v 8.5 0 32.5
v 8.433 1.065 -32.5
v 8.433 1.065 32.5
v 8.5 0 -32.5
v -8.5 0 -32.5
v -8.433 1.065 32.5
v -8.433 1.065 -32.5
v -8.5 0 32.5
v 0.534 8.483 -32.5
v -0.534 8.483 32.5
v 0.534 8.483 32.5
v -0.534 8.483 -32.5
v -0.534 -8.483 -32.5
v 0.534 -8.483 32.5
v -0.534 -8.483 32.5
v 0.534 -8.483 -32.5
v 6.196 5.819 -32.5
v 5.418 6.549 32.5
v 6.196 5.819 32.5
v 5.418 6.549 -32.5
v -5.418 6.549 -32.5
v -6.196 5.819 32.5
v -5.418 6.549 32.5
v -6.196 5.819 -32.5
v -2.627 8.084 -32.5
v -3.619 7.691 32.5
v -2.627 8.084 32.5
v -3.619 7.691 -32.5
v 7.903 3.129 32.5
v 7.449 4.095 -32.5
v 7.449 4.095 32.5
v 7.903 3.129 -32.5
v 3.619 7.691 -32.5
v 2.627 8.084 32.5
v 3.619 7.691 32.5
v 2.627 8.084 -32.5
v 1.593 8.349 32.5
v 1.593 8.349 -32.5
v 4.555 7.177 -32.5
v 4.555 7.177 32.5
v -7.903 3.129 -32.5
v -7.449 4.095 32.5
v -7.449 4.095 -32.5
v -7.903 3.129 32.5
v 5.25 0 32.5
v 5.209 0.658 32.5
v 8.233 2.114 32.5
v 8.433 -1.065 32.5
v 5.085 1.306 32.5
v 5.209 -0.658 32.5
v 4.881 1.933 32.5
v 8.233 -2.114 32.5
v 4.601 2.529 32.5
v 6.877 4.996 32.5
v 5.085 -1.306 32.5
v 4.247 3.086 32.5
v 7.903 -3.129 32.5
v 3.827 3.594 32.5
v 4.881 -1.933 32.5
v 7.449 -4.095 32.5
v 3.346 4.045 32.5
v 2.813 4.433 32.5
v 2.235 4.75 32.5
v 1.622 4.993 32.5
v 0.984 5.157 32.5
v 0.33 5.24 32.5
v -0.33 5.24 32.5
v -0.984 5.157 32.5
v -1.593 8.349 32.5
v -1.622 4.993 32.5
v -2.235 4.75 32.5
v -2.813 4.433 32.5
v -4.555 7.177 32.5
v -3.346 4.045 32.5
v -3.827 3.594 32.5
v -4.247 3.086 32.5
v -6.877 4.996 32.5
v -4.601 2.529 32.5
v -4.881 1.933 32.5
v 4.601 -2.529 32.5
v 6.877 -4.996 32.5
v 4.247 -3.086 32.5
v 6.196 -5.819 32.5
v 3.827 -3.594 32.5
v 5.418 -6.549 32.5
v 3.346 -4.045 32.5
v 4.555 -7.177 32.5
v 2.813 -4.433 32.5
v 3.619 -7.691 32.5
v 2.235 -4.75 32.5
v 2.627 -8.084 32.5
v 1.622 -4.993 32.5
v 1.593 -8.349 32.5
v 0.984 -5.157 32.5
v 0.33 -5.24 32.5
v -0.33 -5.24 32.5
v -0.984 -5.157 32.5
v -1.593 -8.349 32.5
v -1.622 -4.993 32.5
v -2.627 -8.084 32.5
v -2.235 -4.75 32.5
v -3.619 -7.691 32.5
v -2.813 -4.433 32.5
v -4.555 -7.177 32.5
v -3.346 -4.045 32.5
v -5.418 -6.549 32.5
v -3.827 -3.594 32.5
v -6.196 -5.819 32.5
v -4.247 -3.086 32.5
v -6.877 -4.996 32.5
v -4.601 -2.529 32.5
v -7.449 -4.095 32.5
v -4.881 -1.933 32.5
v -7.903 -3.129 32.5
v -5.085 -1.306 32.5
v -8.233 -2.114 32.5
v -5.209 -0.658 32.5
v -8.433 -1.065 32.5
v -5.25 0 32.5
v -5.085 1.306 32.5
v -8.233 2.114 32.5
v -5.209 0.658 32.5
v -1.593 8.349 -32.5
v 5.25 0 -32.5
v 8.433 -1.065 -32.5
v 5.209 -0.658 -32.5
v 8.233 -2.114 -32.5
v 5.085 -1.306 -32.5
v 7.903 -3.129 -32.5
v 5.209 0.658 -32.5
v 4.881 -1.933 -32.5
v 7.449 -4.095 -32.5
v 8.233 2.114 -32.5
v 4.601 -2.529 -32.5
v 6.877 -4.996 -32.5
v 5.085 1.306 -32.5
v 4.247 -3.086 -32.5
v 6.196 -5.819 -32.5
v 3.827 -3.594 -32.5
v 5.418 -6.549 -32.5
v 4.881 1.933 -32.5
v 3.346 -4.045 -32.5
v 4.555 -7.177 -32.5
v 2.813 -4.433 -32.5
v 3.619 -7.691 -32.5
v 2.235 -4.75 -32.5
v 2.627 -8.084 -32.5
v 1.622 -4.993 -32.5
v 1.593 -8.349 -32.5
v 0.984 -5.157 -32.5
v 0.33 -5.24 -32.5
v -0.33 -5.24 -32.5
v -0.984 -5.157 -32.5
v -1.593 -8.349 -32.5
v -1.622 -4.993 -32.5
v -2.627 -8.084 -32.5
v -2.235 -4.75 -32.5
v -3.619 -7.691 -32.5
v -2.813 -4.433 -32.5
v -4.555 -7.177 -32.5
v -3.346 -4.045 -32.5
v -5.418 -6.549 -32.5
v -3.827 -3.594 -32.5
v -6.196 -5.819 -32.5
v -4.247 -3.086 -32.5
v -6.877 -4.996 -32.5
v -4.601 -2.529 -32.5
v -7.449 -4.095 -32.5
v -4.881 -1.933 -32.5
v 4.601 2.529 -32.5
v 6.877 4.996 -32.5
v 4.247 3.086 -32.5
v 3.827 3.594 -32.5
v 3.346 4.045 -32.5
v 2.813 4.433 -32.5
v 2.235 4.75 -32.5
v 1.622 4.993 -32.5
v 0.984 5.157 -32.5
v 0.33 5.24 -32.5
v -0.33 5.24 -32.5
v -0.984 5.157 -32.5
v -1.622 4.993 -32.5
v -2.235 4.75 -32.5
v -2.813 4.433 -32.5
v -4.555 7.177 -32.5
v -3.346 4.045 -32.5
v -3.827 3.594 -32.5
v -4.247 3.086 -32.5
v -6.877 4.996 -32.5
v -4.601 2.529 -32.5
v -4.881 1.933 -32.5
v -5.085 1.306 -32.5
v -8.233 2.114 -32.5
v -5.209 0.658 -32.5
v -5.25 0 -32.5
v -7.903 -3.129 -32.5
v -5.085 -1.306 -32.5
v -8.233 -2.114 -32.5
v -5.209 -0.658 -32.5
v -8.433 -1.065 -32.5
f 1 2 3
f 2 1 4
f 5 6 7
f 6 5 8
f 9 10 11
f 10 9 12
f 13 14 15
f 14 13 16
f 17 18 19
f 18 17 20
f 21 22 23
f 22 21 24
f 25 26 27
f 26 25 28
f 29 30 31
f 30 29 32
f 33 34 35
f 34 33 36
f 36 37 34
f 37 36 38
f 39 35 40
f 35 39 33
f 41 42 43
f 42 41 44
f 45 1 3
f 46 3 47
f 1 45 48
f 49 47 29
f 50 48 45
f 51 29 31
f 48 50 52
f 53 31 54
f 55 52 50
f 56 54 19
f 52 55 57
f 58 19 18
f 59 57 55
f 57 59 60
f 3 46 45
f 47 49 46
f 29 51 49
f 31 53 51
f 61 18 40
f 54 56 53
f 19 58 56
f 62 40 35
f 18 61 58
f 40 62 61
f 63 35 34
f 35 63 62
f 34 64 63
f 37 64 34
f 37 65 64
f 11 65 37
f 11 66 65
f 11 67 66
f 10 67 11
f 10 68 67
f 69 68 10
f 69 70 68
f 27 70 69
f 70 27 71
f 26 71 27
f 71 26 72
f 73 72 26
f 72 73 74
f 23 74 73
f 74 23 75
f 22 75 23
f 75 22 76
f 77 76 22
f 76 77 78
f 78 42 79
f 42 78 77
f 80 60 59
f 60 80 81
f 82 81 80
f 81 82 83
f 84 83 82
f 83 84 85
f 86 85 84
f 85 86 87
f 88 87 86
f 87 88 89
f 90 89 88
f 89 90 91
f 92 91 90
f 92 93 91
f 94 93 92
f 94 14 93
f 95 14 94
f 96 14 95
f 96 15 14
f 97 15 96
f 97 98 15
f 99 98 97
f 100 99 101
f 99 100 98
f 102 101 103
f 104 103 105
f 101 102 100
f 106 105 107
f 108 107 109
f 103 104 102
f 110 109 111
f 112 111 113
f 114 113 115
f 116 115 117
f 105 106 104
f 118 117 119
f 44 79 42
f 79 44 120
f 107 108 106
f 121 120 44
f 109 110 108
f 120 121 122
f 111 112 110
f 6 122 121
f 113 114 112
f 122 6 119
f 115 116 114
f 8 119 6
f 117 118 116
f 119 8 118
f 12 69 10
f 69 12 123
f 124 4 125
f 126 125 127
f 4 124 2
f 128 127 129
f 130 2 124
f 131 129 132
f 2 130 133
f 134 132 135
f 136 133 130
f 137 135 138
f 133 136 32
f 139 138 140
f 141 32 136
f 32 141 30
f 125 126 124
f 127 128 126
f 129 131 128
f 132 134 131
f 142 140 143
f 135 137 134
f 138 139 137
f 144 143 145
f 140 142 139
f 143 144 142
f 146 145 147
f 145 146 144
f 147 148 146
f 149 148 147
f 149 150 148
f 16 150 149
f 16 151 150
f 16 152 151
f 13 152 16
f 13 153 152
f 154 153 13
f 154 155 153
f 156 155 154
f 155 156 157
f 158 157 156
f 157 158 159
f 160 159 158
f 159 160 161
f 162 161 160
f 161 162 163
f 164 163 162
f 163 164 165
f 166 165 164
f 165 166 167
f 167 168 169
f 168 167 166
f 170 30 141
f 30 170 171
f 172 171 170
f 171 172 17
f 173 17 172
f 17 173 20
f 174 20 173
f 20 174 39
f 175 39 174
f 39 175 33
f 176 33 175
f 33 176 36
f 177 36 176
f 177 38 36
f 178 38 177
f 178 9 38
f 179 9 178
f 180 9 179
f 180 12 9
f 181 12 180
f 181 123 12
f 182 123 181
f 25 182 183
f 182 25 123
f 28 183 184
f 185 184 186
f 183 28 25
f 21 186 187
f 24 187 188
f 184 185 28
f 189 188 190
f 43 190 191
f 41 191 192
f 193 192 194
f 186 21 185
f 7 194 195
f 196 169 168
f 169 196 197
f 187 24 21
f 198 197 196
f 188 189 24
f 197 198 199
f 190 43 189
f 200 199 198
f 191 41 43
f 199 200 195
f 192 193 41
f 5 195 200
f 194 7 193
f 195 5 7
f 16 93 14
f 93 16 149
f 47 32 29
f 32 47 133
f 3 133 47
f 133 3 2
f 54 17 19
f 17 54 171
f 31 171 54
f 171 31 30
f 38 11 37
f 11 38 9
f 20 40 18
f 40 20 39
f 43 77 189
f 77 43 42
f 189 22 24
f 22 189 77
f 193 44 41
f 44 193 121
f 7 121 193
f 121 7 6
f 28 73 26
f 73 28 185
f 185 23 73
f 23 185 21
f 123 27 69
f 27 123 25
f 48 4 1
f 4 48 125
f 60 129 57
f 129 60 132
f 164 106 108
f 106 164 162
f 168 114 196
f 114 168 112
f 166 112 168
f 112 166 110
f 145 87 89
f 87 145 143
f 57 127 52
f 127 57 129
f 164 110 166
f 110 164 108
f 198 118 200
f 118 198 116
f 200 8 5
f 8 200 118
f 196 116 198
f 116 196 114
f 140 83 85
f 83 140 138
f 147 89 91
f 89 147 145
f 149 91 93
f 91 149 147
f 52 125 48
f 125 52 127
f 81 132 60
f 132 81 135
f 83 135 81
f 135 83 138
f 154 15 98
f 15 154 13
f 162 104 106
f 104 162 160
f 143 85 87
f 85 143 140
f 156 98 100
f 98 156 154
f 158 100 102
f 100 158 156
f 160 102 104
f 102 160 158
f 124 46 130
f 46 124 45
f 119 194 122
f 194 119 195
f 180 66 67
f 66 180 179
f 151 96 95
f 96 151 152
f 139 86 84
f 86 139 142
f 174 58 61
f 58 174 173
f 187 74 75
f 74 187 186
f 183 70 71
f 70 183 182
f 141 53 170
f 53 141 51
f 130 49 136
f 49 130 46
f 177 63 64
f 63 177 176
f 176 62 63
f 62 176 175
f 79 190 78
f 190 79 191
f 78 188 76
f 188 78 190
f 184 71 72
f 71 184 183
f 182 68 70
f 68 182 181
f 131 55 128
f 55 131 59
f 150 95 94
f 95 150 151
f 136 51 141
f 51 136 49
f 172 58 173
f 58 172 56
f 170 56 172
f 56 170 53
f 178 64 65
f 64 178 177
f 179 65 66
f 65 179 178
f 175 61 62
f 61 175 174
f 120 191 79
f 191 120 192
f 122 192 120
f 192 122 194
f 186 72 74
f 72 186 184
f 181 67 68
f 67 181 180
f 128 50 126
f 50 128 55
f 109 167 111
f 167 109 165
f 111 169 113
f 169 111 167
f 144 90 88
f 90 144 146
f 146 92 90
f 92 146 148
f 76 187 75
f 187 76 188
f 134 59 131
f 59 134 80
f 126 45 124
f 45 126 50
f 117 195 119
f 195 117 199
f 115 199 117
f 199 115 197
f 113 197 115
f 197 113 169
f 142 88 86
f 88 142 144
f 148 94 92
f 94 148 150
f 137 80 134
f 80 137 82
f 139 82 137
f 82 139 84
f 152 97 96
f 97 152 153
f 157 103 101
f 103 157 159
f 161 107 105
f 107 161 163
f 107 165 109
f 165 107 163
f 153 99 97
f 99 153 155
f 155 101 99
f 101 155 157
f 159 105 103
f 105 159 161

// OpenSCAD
$fn = 50;


difference() {
	union() {
		translate(v = [0, 0, -32.5000000000]) {
			cylinder(h = 65, r = 8.5000000000);
		}
	}
	union() {
		translate(v = [0, 0, -100.0000000000]) {
			cylinder(h = 200, r = 5.2500000000);
		}
	}
}
